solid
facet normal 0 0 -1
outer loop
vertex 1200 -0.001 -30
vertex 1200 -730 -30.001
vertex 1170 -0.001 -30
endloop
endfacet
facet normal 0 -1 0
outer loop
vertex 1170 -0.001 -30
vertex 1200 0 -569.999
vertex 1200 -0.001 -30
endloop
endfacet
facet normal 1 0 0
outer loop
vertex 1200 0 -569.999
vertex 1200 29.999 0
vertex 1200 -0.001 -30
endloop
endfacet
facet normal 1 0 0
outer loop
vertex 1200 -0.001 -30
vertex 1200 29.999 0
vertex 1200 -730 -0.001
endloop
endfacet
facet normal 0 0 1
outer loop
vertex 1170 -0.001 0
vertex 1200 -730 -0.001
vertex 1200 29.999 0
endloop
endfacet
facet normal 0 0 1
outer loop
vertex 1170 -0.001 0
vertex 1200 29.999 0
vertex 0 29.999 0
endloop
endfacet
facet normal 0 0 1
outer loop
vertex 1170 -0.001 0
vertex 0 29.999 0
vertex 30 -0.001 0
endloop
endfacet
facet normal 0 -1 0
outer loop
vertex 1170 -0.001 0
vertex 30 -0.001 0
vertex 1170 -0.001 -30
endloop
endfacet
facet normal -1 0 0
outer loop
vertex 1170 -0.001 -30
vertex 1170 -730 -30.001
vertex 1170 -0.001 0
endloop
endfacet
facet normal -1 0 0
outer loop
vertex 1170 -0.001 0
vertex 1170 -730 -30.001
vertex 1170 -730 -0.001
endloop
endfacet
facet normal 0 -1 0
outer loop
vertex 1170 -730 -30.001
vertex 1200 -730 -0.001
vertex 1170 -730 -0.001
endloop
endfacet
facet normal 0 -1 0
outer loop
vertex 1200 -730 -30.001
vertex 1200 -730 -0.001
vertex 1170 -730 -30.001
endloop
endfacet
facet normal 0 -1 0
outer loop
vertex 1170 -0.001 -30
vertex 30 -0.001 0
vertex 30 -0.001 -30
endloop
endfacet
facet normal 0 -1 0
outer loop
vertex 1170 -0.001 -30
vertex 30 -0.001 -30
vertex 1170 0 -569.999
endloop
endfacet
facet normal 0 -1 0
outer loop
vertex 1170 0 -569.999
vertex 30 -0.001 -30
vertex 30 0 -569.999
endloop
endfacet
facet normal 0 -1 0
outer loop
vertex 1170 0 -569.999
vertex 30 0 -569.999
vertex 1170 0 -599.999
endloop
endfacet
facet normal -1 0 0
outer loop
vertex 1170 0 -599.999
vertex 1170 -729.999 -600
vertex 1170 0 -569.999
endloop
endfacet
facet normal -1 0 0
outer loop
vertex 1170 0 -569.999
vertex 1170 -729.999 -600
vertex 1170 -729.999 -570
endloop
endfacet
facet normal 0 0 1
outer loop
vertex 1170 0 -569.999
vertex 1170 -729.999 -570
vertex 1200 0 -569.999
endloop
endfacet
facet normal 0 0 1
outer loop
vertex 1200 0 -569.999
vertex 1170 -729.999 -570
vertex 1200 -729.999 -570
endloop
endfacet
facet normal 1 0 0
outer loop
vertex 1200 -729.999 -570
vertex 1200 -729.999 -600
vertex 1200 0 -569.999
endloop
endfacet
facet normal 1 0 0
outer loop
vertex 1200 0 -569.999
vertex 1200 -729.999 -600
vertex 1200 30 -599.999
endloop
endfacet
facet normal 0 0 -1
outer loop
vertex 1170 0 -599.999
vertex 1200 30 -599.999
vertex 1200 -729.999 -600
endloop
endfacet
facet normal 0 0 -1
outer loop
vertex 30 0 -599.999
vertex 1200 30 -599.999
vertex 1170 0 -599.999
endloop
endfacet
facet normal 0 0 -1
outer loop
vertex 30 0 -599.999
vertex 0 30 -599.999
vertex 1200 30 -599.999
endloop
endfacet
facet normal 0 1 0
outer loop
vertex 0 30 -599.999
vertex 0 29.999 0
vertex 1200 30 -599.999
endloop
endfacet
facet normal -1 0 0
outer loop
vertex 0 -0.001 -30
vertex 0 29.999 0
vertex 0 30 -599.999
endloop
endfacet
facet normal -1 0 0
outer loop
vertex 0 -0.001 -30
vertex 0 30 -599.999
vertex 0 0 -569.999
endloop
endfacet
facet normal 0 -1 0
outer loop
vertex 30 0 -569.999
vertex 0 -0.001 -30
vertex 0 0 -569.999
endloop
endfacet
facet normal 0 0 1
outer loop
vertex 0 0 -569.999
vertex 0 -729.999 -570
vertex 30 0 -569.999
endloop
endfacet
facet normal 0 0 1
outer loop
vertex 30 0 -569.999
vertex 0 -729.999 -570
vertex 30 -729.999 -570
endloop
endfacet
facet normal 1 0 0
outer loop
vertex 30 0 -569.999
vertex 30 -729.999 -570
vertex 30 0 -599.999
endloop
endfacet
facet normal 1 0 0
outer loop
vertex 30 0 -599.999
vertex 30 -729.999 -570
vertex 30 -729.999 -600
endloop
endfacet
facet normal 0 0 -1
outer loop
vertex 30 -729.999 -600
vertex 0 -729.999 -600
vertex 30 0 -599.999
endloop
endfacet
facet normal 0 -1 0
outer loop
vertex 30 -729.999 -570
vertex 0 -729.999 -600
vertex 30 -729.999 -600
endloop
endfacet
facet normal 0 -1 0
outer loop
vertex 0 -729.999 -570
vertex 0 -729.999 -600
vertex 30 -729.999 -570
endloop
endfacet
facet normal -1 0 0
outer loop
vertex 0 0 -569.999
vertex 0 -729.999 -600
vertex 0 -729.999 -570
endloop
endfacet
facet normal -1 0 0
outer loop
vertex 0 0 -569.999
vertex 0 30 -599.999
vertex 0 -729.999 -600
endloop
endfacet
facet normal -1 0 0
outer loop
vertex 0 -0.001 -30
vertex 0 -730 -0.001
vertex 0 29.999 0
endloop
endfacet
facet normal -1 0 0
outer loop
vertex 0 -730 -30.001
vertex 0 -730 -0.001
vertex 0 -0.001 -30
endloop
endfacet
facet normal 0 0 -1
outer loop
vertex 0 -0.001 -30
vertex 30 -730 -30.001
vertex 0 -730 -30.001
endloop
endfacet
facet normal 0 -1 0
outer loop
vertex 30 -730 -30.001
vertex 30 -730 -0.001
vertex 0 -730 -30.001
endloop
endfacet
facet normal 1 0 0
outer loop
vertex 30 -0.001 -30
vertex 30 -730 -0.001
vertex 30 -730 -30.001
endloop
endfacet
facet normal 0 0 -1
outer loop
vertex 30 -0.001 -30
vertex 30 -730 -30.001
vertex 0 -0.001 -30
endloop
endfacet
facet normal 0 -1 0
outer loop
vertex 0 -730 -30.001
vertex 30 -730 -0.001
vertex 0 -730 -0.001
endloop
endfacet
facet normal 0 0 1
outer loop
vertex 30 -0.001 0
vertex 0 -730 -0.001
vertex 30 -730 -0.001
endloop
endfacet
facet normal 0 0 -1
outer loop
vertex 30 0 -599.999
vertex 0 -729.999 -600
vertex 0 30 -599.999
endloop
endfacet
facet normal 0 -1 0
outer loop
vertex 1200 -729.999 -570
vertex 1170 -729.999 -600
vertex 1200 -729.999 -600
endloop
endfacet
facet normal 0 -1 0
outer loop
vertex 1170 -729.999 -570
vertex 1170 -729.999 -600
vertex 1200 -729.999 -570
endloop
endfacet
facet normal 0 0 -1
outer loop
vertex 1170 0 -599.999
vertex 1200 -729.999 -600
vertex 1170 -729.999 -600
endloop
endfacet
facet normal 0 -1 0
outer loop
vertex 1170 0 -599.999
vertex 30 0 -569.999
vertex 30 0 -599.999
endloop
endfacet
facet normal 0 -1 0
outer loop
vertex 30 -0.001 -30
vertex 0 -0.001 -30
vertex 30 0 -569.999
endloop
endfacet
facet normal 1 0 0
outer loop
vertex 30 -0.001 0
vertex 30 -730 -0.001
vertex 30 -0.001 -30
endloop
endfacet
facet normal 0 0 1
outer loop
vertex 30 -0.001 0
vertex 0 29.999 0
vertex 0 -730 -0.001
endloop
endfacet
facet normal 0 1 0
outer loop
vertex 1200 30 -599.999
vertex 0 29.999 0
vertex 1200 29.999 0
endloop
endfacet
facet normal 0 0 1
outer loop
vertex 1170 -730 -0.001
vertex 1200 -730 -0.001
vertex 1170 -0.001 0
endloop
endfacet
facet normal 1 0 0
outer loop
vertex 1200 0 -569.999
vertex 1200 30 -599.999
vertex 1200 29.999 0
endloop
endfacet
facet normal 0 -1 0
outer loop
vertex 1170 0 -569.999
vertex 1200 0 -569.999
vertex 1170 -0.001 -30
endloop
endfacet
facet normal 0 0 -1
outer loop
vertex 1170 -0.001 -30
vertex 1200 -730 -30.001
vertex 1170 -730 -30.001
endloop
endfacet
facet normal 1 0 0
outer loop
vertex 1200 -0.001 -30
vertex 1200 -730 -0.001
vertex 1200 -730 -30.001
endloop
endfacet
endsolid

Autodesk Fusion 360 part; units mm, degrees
sketch "Sketch1" plane through (0, 0, 0) normal (0, 1, 0) x (1, 0, 0)
  line L0 (0, 0) -> (1200, 0)
  line L1 (1200, 0) -> (1200, 600)
  line L2 (1200, 600) -> (0, 600)
  line L3 (0, 600) -> (0, 0)
extrude "Extrude1" add sketch "Sketch1" along normal blind 30
sketch "Sketch2" plane through (0, 0, 0) normal (0, -1, 0) x (1, 0, 0)
  line L0 (0, 0) -> (0, -600)
  line L1 (0, -600) -> (1200, -600)
  line L2 (1200, -600) -> (1200, 0)
  line L3 (1200, 0) -> (0, 0)
  line L4 (0, 0) -> (30, 0)
  line L5 (30, 0) -> (30, -30)
  line L6 (30, -30) -> (0, -30)
  line L7 (0, -30) -> (0, 0)
  line L8 (0, -600) -> (30, -600)
  line L9 (30, -600) -> (30, -570)
  line L10 (30, -570) -> (0, -570)
  line L11 (0, -570) -> (0, -600)
  line L12 (1200, 0) -> (1170, 0)
  line L13 (1170, 0) -> (1170, -30)
  line L14 (1170, -30) -> (1200, -30)
  line L15 (1200, -30) -> (1200, 0)
  line L16 (1200, -600) -> (1170, -600)
  line L17 (1170, -600) -> (1170, -570)
  line L18 (1170, -570) -> (1200, -570)
  line L19 (1200, -570) -> (1200, -600)
extrude "Extrude2" add sketch "Sketch2" along normal blind 730 contours L0 L3 L4 L5 L6 L7 | L0 L1 L8 L9 L10 L11 | L2 L3 L12 L13 L14 L15 | L1 L2 L16 L17 L18 L19
